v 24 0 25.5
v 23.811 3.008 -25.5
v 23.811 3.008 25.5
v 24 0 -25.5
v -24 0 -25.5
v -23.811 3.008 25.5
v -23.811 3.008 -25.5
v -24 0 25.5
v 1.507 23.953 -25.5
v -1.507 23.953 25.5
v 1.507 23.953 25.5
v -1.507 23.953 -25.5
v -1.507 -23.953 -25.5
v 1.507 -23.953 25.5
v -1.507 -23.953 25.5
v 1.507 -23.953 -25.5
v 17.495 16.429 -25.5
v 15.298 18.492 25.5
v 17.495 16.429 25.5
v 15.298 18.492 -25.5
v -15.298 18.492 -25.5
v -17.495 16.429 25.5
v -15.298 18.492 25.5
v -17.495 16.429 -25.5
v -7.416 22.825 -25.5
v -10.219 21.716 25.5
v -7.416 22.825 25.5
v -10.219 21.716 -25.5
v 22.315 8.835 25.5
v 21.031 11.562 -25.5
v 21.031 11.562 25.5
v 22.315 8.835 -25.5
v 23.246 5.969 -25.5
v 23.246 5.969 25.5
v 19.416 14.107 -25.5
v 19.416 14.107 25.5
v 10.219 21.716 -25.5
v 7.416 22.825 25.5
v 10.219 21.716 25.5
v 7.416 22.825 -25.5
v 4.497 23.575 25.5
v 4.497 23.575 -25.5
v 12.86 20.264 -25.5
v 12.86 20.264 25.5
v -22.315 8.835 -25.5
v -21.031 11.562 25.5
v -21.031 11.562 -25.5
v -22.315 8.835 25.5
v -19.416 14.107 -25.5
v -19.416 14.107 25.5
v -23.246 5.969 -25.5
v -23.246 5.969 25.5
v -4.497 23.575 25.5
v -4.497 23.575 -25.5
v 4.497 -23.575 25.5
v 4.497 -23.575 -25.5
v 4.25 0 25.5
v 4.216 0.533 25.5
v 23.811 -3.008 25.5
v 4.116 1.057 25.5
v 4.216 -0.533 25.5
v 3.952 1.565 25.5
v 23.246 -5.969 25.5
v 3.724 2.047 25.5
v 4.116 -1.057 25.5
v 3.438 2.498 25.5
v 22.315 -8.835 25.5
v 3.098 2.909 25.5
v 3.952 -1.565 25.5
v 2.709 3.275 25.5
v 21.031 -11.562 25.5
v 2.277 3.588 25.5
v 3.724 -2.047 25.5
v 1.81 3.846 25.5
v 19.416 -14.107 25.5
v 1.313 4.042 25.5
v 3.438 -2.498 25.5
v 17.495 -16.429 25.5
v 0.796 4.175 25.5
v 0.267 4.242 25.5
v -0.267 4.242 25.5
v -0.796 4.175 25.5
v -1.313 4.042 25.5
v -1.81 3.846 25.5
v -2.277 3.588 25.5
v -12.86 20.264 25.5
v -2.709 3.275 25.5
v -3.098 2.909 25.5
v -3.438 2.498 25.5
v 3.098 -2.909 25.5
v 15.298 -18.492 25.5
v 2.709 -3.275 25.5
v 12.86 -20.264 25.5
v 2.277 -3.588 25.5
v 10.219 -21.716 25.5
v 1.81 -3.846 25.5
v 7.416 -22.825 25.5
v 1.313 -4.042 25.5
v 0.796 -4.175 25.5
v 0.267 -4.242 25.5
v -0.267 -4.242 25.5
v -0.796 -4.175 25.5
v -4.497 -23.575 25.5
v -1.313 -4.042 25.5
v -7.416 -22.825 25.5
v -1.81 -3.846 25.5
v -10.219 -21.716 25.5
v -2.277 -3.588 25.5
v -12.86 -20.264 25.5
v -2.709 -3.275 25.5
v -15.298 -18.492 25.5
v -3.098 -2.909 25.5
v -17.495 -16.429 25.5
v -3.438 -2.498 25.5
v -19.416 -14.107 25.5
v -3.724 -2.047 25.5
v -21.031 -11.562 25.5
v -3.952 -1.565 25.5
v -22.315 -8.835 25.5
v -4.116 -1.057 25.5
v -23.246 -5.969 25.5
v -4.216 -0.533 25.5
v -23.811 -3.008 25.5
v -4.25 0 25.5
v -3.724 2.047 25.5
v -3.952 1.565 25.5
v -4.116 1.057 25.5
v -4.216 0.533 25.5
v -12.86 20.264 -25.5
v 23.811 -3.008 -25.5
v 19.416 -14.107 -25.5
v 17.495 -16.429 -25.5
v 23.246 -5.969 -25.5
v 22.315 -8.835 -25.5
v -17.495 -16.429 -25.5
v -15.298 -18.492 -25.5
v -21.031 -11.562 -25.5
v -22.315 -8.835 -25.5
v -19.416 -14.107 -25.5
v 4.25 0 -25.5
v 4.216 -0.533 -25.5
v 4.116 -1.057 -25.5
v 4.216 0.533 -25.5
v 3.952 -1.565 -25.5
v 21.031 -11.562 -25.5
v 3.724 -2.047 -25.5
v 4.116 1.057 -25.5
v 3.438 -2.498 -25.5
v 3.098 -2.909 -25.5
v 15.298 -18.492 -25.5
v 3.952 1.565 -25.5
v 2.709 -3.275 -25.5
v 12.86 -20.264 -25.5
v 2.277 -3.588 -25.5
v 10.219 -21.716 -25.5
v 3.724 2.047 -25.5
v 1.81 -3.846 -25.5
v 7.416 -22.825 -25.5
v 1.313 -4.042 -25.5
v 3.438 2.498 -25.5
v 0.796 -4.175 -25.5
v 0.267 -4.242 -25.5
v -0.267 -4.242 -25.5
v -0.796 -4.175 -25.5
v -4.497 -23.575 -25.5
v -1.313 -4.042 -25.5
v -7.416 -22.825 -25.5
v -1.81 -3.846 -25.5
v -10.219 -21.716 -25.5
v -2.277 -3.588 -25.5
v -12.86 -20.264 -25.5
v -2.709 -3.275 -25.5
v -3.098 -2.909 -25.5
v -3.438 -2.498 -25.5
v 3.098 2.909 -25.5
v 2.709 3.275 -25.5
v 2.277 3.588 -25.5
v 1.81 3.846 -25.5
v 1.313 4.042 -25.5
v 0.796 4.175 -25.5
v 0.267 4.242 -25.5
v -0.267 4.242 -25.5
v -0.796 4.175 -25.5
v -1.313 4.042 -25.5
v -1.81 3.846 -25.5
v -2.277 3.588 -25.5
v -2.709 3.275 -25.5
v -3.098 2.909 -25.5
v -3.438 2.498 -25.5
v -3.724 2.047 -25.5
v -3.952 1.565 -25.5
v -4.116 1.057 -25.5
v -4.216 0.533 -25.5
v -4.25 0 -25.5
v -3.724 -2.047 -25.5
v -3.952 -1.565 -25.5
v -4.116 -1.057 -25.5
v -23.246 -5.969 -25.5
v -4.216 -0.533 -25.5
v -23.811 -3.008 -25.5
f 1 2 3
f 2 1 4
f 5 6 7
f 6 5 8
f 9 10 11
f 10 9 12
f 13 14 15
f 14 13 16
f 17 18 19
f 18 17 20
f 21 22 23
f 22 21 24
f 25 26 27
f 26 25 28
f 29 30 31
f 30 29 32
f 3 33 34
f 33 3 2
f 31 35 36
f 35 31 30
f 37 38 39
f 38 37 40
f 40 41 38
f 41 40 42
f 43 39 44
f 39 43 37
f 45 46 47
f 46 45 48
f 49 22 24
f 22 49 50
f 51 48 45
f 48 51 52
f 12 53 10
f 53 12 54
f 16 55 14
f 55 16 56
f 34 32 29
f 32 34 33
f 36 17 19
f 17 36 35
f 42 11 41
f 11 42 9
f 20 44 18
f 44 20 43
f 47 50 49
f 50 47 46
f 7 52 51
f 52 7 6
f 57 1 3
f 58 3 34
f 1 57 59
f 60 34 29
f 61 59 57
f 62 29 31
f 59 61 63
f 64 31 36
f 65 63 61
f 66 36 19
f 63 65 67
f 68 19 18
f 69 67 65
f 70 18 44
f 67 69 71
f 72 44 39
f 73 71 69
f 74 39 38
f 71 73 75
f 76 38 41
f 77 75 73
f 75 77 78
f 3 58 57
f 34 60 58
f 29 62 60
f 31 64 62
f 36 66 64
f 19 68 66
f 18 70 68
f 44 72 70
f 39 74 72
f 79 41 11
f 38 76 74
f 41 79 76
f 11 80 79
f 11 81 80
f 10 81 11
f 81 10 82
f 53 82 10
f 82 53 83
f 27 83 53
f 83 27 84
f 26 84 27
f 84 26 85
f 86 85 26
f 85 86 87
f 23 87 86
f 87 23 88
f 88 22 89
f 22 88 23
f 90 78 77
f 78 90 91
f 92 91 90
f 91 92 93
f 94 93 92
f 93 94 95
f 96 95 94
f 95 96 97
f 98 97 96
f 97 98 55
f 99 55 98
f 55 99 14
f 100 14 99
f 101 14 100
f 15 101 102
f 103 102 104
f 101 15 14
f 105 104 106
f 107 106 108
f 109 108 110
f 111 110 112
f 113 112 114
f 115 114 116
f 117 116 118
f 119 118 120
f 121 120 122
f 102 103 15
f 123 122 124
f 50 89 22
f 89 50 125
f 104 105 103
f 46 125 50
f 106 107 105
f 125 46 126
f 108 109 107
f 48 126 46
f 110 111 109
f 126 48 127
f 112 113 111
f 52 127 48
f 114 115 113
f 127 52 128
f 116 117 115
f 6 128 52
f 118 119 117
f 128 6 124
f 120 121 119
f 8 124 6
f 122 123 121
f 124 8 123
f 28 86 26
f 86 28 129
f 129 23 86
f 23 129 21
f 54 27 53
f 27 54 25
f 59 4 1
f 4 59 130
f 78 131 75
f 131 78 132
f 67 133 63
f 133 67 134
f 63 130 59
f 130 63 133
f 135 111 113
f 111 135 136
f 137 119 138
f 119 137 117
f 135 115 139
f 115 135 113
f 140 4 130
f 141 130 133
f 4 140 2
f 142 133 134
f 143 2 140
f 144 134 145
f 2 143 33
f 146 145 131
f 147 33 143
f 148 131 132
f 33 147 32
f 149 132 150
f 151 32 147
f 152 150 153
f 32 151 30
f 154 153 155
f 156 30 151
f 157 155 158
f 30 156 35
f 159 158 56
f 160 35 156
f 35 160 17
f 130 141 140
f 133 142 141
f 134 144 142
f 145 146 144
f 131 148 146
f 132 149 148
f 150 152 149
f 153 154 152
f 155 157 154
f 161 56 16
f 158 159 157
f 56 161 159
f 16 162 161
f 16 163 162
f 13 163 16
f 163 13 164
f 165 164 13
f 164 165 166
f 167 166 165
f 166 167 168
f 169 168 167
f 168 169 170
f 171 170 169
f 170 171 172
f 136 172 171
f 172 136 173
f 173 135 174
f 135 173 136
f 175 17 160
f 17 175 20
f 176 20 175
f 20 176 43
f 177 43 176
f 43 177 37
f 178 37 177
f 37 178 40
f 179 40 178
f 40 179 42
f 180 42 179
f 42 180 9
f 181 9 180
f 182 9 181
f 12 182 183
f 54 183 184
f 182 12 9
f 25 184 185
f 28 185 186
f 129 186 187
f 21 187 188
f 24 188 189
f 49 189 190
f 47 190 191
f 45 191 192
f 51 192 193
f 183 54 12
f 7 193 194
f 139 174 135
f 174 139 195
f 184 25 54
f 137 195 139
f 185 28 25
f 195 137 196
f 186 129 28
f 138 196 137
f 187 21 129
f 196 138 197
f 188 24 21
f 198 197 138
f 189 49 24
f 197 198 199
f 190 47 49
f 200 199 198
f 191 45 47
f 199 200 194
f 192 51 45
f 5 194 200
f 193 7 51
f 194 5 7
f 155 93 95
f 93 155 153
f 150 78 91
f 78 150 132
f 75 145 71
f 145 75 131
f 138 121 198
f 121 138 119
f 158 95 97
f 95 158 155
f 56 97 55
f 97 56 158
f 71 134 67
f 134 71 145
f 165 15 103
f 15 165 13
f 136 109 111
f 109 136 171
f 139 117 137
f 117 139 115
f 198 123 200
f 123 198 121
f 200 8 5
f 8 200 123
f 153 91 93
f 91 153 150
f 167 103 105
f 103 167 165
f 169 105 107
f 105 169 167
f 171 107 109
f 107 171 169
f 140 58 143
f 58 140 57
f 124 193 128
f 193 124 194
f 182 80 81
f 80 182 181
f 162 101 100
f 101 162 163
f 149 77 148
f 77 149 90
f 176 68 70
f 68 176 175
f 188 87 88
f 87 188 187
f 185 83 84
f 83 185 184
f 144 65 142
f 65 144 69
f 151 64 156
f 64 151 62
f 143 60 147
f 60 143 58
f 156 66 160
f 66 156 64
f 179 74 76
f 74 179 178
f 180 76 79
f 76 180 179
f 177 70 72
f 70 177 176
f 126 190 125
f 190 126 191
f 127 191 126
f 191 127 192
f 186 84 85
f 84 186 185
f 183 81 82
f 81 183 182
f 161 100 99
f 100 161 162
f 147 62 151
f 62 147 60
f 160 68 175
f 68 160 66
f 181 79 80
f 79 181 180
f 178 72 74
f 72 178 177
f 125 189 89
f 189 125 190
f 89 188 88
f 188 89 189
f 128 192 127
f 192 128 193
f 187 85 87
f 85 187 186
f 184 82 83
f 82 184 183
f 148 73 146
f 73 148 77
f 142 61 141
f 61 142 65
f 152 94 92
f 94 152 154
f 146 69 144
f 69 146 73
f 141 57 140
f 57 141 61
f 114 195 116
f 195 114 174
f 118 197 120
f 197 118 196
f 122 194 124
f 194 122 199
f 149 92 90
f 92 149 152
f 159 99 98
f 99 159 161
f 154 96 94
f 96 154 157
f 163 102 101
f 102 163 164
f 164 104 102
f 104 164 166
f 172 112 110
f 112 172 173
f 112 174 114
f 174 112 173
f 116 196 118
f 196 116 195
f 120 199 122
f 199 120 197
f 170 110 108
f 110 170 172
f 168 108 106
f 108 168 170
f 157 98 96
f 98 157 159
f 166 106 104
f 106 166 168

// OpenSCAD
$fn = 50;


difference() {
	union() {
		translate(v = [0, 0, -25.5000000000]) {
			cylinder(h = 51, r = 24.0000000000);
		}
	}
	union() {
		translate(v = [0, 0, -100.0000000000]) {
			cylinder(h = 200, r = 4.2500000000);
		}
	}
}
